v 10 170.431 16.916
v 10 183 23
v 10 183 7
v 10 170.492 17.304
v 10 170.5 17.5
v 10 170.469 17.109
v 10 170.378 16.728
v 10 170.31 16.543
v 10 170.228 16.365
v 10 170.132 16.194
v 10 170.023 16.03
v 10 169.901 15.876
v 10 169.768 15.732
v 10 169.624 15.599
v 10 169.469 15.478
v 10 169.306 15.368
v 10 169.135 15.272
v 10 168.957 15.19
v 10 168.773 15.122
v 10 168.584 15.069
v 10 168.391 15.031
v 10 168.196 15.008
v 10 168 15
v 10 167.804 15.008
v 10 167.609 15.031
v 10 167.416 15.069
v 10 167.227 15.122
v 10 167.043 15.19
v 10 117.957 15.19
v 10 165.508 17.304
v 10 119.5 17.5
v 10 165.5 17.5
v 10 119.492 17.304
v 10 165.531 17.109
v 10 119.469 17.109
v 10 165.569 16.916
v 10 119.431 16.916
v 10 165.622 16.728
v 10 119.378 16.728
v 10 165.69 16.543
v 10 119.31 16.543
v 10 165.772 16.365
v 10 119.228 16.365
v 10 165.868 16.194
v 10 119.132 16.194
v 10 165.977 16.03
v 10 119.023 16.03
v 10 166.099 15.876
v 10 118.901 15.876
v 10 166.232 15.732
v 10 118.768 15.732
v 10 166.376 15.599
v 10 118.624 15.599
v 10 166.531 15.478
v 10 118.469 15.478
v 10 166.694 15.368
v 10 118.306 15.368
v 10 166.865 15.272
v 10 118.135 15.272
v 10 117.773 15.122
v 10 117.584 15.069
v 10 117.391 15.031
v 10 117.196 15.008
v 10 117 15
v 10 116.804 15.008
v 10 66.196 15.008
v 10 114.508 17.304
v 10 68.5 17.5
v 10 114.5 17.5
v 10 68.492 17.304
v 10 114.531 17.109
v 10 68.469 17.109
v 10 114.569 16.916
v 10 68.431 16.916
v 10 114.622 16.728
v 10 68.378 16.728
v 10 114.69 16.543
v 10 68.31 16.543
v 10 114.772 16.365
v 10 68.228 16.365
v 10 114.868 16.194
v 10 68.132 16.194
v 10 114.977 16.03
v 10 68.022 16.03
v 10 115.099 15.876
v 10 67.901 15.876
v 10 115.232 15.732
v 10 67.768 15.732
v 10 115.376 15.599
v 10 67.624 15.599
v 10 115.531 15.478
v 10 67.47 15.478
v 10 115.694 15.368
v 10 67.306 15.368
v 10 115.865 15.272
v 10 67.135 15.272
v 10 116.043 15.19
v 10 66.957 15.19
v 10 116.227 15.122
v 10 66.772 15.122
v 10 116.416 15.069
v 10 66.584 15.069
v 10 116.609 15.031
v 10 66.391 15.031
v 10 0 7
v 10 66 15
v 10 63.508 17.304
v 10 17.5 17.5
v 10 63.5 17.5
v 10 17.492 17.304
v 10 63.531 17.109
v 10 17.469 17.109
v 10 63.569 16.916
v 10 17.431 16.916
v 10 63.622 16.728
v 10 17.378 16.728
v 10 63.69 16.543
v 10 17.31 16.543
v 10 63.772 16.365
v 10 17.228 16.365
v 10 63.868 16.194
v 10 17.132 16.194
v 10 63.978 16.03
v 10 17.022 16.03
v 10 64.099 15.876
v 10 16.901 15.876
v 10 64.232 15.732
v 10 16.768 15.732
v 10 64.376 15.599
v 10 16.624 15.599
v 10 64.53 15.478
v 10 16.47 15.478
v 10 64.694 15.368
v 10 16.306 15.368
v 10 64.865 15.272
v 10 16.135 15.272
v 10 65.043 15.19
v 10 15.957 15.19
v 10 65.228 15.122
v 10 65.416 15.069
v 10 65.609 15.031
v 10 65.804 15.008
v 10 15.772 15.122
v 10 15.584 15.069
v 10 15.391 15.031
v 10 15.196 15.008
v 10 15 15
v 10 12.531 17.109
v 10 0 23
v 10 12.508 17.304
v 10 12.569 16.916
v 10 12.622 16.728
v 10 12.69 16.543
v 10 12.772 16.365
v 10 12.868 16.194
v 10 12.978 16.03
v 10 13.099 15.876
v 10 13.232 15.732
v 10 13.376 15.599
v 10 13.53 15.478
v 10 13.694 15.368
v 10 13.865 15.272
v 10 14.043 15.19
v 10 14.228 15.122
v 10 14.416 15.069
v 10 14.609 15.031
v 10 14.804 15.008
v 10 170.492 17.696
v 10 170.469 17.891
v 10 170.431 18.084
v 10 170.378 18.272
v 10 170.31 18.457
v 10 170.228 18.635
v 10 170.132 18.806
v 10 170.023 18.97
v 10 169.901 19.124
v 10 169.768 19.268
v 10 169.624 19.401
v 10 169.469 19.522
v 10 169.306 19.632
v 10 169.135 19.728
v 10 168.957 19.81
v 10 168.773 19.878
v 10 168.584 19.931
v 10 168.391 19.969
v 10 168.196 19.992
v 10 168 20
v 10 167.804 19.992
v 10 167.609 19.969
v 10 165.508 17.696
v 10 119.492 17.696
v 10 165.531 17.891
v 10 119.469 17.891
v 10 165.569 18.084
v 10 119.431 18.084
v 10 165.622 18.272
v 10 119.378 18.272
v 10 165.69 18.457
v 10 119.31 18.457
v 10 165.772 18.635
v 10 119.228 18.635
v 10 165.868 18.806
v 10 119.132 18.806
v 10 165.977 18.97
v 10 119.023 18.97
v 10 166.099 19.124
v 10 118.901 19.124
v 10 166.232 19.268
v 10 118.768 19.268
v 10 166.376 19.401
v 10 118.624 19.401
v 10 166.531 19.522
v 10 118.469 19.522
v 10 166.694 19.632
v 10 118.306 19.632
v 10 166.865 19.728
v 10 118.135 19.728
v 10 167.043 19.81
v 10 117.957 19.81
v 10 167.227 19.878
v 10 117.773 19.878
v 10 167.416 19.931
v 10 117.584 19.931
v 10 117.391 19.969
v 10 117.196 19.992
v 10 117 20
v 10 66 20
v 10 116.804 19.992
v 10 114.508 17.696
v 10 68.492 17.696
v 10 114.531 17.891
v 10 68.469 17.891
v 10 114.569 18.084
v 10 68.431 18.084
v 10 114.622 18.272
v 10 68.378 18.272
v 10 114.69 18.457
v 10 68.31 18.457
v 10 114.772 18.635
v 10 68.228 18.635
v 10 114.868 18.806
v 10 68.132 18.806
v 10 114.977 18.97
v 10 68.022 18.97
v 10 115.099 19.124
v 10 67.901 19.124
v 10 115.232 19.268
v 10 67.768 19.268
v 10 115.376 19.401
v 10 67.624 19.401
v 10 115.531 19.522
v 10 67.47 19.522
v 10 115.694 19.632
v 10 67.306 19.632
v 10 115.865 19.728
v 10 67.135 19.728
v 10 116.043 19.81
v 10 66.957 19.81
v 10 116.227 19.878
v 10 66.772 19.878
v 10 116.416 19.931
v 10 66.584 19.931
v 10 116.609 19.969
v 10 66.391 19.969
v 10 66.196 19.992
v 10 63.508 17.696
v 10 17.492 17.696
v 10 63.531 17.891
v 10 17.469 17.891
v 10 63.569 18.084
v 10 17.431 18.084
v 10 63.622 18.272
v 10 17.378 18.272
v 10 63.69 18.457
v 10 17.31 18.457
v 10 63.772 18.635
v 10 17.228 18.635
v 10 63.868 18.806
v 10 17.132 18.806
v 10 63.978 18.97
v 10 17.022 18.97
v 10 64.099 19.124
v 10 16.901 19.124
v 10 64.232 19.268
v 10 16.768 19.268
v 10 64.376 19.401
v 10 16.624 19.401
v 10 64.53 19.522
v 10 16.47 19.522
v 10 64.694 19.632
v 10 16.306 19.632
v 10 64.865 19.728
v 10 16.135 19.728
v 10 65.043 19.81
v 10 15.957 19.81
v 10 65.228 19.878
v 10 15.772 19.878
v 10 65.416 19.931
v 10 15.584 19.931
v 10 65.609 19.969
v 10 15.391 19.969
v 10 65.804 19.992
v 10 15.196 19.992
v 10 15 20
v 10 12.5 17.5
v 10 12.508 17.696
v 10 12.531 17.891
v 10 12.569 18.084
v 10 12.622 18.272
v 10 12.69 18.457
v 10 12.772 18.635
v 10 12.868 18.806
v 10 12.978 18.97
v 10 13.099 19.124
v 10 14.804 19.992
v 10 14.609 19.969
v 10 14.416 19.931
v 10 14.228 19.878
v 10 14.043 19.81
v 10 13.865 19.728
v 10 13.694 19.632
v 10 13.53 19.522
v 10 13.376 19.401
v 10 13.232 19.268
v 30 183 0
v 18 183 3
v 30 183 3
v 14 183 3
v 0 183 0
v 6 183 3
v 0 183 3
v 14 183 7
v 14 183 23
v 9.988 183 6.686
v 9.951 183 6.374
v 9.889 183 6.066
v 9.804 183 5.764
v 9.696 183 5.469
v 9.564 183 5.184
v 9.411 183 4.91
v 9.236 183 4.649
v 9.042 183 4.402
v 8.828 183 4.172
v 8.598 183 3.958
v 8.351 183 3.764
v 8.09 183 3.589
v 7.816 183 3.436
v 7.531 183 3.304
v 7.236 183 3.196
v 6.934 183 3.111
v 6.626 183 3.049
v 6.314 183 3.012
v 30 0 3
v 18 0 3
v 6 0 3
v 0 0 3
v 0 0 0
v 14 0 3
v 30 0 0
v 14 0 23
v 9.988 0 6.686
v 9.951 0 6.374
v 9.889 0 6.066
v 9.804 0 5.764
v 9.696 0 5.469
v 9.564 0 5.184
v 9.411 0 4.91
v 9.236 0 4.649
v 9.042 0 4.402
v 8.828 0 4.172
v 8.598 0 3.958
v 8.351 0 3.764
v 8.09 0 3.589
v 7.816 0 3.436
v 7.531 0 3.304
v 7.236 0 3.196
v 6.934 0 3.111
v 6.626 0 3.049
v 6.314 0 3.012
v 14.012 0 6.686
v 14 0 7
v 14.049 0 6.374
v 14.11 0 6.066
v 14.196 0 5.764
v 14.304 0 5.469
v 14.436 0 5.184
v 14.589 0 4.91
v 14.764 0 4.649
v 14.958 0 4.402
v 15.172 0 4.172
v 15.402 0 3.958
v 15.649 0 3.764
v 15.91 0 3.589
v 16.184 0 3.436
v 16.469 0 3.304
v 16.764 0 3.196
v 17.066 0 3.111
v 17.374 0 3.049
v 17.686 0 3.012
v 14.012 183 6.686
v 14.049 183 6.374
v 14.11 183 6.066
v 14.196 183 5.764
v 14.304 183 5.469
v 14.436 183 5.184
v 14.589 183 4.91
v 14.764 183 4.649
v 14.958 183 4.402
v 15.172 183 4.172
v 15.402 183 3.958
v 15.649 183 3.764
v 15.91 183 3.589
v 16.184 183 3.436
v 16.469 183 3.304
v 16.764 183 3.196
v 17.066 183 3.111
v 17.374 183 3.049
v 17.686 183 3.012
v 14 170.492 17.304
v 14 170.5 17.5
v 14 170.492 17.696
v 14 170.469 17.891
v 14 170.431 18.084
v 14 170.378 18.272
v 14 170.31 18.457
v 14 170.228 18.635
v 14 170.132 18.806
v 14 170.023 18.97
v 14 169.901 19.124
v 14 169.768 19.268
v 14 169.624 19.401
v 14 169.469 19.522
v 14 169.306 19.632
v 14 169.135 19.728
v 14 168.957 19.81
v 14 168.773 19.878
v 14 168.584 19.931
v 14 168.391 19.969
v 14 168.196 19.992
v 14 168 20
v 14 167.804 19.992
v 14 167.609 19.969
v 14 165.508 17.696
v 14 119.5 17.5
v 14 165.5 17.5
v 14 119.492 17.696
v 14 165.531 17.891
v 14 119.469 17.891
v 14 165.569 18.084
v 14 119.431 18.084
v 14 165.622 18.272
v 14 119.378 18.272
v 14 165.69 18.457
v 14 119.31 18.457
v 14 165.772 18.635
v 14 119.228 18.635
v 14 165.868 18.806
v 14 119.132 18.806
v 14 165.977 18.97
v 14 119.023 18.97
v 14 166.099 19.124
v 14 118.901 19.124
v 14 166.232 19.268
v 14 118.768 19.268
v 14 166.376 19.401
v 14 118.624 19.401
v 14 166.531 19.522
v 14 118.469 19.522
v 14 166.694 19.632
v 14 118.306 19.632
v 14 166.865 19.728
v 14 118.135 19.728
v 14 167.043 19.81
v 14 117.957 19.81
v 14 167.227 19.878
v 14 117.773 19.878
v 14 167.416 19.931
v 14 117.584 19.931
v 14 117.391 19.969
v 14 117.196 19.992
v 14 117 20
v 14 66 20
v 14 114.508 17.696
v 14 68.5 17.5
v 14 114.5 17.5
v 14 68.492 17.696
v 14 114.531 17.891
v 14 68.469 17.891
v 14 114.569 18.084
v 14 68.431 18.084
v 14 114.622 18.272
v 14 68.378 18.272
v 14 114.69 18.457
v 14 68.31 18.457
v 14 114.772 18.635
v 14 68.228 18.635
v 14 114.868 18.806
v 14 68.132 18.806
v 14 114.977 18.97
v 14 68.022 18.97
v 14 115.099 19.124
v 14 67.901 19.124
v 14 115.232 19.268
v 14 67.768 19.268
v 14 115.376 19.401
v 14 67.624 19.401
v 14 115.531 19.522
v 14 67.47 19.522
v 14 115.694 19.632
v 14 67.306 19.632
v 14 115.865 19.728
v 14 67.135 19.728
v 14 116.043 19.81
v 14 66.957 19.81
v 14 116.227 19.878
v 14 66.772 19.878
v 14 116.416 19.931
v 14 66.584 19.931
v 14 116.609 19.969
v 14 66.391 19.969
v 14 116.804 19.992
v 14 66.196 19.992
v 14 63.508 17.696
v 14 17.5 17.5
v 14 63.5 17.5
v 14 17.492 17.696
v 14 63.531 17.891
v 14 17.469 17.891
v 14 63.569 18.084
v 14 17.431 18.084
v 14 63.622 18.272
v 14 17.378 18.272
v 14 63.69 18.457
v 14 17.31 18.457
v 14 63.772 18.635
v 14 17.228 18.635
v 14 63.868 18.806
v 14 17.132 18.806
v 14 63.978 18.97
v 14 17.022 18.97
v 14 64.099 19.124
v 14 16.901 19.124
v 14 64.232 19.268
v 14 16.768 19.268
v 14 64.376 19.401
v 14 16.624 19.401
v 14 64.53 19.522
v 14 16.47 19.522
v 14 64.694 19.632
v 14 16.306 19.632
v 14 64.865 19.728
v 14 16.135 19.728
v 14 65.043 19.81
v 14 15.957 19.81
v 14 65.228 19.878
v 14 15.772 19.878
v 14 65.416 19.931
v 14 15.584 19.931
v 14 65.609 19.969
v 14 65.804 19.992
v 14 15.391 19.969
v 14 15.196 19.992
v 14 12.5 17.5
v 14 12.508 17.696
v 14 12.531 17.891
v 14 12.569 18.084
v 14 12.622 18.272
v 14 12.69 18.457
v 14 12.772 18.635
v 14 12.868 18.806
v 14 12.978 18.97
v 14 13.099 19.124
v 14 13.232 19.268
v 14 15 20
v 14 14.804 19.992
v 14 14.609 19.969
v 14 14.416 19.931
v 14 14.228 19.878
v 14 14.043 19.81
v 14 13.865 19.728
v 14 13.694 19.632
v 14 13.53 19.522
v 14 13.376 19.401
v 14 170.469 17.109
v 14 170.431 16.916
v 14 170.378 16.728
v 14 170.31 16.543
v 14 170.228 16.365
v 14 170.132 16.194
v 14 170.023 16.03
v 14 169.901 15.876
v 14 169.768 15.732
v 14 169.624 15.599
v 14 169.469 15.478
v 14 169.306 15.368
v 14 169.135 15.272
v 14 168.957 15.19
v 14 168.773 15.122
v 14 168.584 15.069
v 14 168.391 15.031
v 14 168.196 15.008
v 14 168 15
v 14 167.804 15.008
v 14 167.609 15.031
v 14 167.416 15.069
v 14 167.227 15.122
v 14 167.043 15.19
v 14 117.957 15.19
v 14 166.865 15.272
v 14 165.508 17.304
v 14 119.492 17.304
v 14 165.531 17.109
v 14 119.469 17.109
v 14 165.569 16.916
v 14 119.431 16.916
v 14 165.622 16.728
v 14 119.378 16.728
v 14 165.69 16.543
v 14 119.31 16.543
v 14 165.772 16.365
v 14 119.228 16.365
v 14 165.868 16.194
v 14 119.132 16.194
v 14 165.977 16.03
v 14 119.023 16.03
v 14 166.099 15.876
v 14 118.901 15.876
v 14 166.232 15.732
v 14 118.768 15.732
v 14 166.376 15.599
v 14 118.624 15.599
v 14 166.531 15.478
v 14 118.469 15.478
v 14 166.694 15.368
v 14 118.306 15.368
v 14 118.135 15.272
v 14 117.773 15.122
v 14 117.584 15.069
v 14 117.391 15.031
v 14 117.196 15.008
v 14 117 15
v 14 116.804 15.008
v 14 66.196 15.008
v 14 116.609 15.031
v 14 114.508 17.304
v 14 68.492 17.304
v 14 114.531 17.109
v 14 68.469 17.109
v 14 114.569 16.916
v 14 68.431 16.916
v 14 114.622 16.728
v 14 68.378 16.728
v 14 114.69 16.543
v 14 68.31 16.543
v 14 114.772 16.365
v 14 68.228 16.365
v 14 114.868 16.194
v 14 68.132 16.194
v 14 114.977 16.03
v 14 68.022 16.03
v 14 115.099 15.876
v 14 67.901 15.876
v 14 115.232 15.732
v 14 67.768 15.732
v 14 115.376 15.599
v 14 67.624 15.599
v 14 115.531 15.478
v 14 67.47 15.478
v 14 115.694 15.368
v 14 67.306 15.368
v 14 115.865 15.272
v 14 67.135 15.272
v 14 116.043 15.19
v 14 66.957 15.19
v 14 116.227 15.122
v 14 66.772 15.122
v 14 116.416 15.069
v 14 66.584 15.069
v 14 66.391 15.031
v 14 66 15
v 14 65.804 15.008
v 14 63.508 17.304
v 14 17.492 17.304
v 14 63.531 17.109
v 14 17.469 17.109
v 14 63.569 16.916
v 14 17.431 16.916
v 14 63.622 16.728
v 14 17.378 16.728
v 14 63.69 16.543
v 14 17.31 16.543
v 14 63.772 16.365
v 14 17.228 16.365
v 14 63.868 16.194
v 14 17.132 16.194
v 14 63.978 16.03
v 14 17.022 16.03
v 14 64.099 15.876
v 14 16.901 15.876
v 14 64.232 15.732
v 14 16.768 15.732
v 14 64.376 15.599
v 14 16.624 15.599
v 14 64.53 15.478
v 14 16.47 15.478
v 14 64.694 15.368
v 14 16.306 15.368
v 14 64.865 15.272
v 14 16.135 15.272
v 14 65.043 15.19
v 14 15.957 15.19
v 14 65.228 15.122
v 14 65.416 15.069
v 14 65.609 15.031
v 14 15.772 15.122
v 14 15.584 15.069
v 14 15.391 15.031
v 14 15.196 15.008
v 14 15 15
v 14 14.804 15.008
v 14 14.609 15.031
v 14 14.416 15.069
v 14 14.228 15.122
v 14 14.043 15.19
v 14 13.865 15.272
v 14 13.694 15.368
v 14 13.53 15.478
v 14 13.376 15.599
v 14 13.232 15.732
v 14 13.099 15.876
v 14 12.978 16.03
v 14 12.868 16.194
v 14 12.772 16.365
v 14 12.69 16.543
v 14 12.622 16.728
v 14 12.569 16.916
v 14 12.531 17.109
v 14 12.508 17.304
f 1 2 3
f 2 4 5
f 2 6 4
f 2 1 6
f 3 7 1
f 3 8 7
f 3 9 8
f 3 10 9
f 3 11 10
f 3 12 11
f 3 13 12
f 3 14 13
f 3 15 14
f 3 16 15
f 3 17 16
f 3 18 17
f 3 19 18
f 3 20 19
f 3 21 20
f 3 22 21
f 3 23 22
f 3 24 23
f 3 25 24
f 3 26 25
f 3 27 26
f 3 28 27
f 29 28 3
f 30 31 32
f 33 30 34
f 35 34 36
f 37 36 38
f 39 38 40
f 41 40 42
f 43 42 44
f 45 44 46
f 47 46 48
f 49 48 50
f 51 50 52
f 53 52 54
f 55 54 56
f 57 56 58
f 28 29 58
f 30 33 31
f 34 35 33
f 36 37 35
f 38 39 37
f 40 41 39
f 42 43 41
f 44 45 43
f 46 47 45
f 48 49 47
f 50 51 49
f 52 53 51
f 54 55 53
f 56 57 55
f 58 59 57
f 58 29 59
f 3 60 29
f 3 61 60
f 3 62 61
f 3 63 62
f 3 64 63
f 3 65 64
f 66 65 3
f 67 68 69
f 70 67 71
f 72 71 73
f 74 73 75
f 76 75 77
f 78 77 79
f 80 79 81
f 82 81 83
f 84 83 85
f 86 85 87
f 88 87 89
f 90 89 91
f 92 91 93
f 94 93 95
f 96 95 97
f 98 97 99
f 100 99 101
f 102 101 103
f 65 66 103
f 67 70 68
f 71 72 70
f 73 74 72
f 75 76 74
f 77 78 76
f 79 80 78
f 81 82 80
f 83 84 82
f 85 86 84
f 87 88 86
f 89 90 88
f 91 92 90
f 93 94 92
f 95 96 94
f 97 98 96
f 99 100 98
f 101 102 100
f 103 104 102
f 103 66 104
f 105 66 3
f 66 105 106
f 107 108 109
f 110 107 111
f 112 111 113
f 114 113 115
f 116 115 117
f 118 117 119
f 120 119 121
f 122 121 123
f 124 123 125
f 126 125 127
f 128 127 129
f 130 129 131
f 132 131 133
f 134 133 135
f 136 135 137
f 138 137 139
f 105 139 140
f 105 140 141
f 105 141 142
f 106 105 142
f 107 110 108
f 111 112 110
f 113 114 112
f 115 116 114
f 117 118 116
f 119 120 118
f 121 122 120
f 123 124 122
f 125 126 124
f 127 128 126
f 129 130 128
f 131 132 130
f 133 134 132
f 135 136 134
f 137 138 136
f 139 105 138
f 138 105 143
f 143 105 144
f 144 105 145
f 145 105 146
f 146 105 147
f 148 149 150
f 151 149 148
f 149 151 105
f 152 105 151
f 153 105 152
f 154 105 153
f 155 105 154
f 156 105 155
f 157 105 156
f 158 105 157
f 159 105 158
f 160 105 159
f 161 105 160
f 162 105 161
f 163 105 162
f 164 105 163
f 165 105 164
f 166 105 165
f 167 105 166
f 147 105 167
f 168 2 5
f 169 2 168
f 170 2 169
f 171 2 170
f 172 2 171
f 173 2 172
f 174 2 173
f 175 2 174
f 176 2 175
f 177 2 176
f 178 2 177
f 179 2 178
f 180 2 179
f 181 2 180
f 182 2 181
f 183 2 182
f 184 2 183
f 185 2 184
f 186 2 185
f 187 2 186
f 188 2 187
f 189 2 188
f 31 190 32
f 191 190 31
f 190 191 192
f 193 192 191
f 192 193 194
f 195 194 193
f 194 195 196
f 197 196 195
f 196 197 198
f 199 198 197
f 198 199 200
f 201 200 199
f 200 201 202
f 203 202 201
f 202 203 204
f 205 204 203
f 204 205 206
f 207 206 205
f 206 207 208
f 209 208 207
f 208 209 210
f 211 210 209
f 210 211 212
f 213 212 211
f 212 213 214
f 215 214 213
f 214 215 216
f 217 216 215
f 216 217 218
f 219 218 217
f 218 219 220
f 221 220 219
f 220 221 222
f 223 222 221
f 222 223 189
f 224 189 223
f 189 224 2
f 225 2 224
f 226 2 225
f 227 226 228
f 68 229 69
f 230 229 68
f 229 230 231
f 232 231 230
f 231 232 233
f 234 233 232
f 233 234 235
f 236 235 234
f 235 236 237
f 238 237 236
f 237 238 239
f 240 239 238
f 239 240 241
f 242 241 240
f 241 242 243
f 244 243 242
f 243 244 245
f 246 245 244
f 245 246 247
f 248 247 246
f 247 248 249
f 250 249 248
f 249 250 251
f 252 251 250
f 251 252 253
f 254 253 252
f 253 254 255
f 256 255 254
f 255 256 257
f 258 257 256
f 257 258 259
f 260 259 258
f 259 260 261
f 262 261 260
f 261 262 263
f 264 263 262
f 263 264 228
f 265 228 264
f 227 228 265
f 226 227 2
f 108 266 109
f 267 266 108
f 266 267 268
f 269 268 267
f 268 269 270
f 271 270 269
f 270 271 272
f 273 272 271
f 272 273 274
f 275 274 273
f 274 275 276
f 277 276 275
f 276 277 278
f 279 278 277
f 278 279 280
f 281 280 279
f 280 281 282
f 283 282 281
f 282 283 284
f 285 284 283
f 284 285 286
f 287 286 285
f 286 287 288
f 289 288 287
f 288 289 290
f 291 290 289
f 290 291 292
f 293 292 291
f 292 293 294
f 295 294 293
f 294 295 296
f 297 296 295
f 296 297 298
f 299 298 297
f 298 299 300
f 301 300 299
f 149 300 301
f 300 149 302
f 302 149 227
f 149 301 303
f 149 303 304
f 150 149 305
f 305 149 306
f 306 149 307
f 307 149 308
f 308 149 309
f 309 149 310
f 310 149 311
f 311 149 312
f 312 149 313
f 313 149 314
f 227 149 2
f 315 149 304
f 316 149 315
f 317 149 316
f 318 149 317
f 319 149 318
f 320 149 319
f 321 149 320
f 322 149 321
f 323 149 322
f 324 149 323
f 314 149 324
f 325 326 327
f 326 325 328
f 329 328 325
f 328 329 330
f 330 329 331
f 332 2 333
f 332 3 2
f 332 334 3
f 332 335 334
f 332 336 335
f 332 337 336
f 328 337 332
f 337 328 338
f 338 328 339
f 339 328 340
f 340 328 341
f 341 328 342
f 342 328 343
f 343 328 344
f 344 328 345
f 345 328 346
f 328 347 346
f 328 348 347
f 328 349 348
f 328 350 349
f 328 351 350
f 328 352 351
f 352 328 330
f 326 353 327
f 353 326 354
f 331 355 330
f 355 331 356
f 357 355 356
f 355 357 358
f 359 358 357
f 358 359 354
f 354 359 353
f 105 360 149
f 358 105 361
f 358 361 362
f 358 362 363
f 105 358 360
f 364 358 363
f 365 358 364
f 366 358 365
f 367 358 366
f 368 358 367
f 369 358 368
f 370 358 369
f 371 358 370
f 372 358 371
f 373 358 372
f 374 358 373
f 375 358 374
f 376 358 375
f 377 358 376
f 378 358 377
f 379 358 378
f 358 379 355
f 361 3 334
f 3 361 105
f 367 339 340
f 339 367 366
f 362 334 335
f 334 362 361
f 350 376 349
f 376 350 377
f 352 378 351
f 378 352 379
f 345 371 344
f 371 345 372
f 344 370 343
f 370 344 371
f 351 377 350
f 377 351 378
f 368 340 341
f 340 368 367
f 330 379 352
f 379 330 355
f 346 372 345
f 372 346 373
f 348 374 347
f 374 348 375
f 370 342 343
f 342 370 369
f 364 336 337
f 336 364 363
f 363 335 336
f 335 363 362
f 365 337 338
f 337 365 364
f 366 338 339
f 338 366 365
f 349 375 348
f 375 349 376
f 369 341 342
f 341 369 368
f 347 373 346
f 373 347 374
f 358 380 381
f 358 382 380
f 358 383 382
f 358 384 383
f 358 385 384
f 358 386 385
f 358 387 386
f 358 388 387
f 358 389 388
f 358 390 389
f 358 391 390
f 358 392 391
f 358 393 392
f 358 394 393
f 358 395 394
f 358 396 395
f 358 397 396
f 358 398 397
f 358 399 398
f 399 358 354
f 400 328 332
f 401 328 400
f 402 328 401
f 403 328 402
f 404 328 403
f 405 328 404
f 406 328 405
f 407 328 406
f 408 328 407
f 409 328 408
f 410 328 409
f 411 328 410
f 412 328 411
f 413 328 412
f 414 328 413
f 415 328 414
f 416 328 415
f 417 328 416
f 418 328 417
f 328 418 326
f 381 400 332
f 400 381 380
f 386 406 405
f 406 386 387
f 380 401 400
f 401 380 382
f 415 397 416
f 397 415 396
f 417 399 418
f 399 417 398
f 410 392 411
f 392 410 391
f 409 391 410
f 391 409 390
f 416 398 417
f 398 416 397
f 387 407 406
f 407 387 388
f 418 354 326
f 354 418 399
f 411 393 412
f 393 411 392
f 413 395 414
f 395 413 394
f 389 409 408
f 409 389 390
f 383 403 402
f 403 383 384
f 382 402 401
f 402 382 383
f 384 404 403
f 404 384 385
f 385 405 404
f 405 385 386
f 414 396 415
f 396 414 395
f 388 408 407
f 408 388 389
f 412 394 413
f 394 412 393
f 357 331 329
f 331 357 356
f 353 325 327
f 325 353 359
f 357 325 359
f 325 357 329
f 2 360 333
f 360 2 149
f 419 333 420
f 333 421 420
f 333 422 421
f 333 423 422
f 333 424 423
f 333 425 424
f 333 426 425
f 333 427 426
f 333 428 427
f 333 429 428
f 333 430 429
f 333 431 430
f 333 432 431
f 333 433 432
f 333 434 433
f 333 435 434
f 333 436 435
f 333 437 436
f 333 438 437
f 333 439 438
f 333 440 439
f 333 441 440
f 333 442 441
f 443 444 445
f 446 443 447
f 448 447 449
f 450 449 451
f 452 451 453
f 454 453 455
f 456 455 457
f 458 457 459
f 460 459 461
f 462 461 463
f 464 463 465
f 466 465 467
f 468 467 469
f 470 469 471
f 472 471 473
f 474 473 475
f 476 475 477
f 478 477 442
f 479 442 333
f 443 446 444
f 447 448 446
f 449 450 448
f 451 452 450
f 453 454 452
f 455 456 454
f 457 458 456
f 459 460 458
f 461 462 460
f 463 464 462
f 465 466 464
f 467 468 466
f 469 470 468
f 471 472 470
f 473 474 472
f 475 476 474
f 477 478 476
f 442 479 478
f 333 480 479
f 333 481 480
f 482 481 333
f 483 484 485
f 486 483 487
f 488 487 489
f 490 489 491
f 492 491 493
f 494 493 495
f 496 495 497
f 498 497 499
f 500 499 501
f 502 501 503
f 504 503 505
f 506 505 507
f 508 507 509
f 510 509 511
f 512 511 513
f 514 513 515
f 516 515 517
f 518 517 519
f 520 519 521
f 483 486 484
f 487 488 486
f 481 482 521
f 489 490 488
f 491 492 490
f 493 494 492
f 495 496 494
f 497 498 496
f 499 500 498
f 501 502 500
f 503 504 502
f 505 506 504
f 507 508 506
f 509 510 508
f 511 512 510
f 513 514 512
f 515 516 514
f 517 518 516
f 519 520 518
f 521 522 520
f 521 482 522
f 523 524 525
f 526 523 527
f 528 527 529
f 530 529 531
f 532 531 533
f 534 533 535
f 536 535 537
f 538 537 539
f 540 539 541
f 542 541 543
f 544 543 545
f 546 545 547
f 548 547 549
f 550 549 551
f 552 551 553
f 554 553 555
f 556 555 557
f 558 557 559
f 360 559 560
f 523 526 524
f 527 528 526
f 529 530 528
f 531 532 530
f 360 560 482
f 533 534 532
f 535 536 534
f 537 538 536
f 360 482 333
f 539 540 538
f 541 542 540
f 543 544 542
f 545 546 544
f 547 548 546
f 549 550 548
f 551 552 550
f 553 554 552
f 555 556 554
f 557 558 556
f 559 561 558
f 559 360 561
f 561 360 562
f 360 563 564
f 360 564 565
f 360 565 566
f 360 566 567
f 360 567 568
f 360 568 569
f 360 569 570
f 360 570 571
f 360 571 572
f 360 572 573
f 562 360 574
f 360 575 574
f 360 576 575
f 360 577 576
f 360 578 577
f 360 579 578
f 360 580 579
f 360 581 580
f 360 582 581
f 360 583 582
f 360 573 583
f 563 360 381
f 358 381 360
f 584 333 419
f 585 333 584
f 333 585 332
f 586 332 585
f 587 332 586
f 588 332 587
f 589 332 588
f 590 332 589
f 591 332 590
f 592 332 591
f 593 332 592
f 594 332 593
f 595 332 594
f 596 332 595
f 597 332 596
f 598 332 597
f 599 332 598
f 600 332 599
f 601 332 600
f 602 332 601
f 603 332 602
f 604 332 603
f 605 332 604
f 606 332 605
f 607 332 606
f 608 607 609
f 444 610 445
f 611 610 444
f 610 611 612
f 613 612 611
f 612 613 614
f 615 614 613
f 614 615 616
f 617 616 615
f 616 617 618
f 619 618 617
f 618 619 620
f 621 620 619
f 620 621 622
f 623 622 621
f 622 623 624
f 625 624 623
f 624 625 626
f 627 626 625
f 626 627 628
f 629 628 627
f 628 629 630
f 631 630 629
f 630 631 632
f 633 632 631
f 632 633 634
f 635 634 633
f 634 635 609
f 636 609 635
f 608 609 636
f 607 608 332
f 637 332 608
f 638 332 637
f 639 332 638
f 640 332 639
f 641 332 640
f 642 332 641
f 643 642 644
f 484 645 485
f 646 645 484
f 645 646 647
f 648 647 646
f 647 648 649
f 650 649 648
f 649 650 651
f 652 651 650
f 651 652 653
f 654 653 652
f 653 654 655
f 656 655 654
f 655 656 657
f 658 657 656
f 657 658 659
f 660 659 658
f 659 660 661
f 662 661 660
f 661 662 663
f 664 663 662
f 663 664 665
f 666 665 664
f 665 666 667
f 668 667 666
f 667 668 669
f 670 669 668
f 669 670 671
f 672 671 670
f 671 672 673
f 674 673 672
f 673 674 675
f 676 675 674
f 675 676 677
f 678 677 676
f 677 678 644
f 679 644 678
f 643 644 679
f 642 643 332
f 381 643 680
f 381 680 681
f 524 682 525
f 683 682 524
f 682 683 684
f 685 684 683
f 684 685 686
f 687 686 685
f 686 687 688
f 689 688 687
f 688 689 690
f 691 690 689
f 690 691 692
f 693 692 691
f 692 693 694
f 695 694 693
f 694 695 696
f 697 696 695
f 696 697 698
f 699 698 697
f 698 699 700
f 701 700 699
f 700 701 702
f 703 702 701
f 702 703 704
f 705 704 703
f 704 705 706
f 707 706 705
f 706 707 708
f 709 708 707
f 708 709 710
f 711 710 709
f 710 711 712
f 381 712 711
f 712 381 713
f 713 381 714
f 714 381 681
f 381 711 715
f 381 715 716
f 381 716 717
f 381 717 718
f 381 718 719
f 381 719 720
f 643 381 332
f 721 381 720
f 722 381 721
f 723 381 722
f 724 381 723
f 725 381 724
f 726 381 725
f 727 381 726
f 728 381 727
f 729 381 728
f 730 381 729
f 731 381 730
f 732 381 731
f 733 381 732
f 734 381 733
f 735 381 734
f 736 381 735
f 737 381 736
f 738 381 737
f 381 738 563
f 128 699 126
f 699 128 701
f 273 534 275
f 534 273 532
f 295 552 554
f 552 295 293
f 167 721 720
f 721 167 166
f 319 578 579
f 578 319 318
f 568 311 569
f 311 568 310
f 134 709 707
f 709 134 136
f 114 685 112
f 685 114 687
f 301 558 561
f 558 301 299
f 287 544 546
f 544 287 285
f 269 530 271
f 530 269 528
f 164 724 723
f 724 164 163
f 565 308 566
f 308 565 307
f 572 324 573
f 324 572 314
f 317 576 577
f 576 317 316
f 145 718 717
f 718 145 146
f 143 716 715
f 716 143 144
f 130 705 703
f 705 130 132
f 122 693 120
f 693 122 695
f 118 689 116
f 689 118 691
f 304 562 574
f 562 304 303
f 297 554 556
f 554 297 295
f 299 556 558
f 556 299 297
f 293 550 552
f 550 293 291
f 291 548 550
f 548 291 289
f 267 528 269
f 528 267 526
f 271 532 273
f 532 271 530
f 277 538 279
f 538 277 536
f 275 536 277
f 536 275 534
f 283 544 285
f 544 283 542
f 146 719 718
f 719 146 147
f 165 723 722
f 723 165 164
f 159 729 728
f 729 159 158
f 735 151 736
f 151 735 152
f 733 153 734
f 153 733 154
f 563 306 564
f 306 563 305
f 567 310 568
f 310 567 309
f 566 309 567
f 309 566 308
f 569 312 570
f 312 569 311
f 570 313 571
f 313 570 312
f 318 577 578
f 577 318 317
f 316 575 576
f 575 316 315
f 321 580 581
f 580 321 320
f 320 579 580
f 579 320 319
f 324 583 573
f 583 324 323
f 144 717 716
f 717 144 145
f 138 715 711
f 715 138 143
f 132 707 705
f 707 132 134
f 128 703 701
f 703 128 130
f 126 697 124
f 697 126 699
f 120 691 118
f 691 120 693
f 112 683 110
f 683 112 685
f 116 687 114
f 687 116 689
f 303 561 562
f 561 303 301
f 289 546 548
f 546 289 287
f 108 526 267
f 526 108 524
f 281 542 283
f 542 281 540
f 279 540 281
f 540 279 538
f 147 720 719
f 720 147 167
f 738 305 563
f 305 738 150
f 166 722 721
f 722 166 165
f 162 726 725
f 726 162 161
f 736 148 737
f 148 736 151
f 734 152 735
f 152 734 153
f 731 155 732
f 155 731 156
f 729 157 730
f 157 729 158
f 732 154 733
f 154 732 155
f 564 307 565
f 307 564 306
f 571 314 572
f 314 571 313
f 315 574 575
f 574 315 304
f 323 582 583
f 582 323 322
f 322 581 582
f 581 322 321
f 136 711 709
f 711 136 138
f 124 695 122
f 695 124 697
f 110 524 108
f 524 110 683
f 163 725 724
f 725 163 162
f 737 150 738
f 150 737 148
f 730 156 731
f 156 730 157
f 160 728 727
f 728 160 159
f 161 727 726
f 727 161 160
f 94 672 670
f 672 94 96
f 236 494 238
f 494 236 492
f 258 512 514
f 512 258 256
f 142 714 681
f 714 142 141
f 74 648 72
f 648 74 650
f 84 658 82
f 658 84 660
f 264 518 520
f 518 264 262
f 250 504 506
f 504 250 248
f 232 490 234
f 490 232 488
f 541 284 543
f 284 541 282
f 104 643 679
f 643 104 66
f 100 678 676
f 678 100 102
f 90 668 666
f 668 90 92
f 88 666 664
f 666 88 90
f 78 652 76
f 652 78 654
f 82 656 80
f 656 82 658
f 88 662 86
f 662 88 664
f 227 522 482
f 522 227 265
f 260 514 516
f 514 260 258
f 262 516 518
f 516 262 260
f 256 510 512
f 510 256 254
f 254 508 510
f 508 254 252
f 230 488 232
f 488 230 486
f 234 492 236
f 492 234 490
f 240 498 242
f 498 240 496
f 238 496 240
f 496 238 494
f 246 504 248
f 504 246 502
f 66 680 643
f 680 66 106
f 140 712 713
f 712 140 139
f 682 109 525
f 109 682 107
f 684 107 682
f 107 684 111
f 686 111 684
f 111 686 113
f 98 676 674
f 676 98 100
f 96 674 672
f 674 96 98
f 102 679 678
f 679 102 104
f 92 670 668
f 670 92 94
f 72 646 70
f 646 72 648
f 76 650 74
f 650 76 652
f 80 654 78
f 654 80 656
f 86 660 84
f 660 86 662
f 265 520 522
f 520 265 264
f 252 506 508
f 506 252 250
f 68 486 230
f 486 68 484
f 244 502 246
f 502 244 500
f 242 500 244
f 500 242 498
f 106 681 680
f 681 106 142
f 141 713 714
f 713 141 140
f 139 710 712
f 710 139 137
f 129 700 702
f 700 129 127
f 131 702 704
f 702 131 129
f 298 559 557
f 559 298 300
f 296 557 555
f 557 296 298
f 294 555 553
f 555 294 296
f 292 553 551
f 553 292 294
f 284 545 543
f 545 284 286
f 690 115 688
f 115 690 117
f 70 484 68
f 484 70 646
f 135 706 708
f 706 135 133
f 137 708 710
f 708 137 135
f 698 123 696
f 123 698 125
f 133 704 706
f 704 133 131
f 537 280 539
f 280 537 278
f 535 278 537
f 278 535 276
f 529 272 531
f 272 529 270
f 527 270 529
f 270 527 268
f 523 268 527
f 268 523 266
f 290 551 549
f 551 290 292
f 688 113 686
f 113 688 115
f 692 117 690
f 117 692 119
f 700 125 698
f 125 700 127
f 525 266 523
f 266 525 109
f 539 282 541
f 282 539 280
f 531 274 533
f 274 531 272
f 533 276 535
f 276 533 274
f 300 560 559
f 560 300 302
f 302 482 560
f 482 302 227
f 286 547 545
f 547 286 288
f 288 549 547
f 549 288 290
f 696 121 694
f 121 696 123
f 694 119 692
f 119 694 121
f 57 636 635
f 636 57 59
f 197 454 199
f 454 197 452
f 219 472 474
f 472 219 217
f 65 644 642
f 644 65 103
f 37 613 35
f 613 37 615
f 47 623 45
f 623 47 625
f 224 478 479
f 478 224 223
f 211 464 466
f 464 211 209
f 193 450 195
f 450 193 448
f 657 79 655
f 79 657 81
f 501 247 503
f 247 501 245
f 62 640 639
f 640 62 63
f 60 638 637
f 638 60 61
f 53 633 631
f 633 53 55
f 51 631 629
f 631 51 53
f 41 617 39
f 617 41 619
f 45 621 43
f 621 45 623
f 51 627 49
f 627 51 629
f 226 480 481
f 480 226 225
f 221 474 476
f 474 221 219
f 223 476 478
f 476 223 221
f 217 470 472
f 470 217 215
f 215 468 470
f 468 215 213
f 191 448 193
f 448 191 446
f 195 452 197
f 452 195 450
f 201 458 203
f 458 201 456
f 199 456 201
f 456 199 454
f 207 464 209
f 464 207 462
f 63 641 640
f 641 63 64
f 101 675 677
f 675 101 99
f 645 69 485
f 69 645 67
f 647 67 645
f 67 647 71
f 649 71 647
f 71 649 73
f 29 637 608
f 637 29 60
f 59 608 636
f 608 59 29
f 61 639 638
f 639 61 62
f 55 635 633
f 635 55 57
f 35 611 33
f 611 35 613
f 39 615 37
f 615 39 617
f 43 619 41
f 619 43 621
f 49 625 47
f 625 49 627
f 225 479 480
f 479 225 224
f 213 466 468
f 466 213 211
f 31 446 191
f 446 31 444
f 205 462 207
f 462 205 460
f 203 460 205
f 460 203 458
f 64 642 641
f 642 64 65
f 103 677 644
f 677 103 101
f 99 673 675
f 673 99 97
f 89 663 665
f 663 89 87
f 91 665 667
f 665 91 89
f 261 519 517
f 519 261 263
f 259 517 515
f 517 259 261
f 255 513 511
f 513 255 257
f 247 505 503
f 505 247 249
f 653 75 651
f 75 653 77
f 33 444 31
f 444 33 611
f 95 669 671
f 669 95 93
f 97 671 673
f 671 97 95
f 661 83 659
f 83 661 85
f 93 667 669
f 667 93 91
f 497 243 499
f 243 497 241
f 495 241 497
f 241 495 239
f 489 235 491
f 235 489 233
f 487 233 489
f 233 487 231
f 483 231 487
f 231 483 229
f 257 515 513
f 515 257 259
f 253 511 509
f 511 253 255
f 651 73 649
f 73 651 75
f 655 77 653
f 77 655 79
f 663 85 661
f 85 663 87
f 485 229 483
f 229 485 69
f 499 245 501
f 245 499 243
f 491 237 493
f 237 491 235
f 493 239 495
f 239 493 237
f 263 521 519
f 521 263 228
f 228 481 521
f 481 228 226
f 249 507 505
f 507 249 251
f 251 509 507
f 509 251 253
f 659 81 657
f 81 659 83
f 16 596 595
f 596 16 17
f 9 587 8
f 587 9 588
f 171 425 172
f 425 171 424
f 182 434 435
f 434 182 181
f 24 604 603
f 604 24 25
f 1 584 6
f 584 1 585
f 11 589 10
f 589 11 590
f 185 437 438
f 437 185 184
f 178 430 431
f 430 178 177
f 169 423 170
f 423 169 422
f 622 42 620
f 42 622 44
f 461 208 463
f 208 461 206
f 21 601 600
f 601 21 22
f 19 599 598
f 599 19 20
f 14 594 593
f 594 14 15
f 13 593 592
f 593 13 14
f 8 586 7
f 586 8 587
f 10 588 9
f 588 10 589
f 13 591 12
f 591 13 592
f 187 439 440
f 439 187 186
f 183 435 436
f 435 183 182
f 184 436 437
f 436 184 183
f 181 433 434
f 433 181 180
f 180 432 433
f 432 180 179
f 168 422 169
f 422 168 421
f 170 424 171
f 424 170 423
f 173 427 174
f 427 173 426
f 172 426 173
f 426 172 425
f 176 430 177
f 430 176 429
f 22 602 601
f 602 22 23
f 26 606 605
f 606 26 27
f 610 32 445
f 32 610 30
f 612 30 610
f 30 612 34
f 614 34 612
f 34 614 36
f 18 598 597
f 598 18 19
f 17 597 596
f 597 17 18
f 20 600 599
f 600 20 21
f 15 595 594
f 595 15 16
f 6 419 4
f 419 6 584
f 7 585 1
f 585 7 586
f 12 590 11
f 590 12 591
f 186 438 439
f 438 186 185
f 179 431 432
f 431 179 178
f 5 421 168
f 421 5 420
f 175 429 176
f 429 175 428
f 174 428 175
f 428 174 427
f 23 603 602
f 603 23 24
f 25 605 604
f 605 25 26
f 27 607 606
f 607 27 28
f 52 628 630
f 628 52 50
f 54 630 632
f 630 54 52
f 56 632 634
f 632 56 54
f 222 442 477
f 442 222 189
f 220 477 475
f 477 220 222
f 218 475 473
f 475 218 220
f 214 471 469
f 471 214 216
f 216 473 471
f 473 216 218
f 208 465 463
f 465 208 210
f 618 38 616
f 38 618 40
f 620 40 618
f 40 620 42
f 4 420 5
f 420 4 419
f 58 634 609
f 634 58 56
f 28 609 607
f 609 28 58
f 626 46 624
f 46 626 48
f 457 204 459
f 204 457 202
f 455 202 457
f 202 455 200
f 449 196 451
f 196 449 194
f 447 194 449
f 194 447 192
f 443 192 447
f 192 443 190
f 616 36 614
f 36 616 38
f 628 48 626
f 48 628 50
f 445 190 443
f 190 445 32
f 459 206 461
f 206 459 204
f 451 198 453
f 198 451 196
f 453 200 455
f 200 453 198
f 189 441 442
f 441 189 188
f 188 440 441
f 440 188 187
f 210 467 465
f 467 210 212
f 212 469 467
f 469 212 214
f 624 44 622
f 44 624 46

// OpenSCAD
sideOffset = 15;
count = 4;
dist = 51;
largeDiam = 5;

x = 30;
y = 2 * sideOffset + ((count - 1) * dist);
z = 3;
topOffset = 10;
supportX = 4;
supportZ = 23;

rack();

module rack() {
  difference() {
    support();
    translate([0, sideOffset, 0 ])
      trous();

  }
  
}

module trous() {
  for(i = [0: count - 1]) {
    translate([topOffset -1, i * dist - largeDiam/2, supportZ - largeDiam - 3 ])
      trou();
  }

}

module trou() {
  translate([0, largeDiam/2, largeDiam/2])
    rotate(90, [0, 1, 0])
      cylinder(d=largeDiam, h=supportX + 2, $fn= 80);
}
  
module support() {  
  cube([x, y, z]);
  translate([topOffset, 0, 0])
    cube([supportX, y, supportZ]);
  translate([topOffset - supportX, 0, z])
    roundedInside(supportX, y);
  translate([topOffset + 2*supportX, y, z])
    rotate(180, [0, 0, 1])
      roundedInside(supportX, y);
}


module roundedInside(side, length) {
  difference() {
    cube([side, length, side]);
    translate([0, -1, side])
      rotate(-90, [1, 0, 0])
        cylinder(d=side*2, h=length + 2, $fn=80);
  }
  
}
